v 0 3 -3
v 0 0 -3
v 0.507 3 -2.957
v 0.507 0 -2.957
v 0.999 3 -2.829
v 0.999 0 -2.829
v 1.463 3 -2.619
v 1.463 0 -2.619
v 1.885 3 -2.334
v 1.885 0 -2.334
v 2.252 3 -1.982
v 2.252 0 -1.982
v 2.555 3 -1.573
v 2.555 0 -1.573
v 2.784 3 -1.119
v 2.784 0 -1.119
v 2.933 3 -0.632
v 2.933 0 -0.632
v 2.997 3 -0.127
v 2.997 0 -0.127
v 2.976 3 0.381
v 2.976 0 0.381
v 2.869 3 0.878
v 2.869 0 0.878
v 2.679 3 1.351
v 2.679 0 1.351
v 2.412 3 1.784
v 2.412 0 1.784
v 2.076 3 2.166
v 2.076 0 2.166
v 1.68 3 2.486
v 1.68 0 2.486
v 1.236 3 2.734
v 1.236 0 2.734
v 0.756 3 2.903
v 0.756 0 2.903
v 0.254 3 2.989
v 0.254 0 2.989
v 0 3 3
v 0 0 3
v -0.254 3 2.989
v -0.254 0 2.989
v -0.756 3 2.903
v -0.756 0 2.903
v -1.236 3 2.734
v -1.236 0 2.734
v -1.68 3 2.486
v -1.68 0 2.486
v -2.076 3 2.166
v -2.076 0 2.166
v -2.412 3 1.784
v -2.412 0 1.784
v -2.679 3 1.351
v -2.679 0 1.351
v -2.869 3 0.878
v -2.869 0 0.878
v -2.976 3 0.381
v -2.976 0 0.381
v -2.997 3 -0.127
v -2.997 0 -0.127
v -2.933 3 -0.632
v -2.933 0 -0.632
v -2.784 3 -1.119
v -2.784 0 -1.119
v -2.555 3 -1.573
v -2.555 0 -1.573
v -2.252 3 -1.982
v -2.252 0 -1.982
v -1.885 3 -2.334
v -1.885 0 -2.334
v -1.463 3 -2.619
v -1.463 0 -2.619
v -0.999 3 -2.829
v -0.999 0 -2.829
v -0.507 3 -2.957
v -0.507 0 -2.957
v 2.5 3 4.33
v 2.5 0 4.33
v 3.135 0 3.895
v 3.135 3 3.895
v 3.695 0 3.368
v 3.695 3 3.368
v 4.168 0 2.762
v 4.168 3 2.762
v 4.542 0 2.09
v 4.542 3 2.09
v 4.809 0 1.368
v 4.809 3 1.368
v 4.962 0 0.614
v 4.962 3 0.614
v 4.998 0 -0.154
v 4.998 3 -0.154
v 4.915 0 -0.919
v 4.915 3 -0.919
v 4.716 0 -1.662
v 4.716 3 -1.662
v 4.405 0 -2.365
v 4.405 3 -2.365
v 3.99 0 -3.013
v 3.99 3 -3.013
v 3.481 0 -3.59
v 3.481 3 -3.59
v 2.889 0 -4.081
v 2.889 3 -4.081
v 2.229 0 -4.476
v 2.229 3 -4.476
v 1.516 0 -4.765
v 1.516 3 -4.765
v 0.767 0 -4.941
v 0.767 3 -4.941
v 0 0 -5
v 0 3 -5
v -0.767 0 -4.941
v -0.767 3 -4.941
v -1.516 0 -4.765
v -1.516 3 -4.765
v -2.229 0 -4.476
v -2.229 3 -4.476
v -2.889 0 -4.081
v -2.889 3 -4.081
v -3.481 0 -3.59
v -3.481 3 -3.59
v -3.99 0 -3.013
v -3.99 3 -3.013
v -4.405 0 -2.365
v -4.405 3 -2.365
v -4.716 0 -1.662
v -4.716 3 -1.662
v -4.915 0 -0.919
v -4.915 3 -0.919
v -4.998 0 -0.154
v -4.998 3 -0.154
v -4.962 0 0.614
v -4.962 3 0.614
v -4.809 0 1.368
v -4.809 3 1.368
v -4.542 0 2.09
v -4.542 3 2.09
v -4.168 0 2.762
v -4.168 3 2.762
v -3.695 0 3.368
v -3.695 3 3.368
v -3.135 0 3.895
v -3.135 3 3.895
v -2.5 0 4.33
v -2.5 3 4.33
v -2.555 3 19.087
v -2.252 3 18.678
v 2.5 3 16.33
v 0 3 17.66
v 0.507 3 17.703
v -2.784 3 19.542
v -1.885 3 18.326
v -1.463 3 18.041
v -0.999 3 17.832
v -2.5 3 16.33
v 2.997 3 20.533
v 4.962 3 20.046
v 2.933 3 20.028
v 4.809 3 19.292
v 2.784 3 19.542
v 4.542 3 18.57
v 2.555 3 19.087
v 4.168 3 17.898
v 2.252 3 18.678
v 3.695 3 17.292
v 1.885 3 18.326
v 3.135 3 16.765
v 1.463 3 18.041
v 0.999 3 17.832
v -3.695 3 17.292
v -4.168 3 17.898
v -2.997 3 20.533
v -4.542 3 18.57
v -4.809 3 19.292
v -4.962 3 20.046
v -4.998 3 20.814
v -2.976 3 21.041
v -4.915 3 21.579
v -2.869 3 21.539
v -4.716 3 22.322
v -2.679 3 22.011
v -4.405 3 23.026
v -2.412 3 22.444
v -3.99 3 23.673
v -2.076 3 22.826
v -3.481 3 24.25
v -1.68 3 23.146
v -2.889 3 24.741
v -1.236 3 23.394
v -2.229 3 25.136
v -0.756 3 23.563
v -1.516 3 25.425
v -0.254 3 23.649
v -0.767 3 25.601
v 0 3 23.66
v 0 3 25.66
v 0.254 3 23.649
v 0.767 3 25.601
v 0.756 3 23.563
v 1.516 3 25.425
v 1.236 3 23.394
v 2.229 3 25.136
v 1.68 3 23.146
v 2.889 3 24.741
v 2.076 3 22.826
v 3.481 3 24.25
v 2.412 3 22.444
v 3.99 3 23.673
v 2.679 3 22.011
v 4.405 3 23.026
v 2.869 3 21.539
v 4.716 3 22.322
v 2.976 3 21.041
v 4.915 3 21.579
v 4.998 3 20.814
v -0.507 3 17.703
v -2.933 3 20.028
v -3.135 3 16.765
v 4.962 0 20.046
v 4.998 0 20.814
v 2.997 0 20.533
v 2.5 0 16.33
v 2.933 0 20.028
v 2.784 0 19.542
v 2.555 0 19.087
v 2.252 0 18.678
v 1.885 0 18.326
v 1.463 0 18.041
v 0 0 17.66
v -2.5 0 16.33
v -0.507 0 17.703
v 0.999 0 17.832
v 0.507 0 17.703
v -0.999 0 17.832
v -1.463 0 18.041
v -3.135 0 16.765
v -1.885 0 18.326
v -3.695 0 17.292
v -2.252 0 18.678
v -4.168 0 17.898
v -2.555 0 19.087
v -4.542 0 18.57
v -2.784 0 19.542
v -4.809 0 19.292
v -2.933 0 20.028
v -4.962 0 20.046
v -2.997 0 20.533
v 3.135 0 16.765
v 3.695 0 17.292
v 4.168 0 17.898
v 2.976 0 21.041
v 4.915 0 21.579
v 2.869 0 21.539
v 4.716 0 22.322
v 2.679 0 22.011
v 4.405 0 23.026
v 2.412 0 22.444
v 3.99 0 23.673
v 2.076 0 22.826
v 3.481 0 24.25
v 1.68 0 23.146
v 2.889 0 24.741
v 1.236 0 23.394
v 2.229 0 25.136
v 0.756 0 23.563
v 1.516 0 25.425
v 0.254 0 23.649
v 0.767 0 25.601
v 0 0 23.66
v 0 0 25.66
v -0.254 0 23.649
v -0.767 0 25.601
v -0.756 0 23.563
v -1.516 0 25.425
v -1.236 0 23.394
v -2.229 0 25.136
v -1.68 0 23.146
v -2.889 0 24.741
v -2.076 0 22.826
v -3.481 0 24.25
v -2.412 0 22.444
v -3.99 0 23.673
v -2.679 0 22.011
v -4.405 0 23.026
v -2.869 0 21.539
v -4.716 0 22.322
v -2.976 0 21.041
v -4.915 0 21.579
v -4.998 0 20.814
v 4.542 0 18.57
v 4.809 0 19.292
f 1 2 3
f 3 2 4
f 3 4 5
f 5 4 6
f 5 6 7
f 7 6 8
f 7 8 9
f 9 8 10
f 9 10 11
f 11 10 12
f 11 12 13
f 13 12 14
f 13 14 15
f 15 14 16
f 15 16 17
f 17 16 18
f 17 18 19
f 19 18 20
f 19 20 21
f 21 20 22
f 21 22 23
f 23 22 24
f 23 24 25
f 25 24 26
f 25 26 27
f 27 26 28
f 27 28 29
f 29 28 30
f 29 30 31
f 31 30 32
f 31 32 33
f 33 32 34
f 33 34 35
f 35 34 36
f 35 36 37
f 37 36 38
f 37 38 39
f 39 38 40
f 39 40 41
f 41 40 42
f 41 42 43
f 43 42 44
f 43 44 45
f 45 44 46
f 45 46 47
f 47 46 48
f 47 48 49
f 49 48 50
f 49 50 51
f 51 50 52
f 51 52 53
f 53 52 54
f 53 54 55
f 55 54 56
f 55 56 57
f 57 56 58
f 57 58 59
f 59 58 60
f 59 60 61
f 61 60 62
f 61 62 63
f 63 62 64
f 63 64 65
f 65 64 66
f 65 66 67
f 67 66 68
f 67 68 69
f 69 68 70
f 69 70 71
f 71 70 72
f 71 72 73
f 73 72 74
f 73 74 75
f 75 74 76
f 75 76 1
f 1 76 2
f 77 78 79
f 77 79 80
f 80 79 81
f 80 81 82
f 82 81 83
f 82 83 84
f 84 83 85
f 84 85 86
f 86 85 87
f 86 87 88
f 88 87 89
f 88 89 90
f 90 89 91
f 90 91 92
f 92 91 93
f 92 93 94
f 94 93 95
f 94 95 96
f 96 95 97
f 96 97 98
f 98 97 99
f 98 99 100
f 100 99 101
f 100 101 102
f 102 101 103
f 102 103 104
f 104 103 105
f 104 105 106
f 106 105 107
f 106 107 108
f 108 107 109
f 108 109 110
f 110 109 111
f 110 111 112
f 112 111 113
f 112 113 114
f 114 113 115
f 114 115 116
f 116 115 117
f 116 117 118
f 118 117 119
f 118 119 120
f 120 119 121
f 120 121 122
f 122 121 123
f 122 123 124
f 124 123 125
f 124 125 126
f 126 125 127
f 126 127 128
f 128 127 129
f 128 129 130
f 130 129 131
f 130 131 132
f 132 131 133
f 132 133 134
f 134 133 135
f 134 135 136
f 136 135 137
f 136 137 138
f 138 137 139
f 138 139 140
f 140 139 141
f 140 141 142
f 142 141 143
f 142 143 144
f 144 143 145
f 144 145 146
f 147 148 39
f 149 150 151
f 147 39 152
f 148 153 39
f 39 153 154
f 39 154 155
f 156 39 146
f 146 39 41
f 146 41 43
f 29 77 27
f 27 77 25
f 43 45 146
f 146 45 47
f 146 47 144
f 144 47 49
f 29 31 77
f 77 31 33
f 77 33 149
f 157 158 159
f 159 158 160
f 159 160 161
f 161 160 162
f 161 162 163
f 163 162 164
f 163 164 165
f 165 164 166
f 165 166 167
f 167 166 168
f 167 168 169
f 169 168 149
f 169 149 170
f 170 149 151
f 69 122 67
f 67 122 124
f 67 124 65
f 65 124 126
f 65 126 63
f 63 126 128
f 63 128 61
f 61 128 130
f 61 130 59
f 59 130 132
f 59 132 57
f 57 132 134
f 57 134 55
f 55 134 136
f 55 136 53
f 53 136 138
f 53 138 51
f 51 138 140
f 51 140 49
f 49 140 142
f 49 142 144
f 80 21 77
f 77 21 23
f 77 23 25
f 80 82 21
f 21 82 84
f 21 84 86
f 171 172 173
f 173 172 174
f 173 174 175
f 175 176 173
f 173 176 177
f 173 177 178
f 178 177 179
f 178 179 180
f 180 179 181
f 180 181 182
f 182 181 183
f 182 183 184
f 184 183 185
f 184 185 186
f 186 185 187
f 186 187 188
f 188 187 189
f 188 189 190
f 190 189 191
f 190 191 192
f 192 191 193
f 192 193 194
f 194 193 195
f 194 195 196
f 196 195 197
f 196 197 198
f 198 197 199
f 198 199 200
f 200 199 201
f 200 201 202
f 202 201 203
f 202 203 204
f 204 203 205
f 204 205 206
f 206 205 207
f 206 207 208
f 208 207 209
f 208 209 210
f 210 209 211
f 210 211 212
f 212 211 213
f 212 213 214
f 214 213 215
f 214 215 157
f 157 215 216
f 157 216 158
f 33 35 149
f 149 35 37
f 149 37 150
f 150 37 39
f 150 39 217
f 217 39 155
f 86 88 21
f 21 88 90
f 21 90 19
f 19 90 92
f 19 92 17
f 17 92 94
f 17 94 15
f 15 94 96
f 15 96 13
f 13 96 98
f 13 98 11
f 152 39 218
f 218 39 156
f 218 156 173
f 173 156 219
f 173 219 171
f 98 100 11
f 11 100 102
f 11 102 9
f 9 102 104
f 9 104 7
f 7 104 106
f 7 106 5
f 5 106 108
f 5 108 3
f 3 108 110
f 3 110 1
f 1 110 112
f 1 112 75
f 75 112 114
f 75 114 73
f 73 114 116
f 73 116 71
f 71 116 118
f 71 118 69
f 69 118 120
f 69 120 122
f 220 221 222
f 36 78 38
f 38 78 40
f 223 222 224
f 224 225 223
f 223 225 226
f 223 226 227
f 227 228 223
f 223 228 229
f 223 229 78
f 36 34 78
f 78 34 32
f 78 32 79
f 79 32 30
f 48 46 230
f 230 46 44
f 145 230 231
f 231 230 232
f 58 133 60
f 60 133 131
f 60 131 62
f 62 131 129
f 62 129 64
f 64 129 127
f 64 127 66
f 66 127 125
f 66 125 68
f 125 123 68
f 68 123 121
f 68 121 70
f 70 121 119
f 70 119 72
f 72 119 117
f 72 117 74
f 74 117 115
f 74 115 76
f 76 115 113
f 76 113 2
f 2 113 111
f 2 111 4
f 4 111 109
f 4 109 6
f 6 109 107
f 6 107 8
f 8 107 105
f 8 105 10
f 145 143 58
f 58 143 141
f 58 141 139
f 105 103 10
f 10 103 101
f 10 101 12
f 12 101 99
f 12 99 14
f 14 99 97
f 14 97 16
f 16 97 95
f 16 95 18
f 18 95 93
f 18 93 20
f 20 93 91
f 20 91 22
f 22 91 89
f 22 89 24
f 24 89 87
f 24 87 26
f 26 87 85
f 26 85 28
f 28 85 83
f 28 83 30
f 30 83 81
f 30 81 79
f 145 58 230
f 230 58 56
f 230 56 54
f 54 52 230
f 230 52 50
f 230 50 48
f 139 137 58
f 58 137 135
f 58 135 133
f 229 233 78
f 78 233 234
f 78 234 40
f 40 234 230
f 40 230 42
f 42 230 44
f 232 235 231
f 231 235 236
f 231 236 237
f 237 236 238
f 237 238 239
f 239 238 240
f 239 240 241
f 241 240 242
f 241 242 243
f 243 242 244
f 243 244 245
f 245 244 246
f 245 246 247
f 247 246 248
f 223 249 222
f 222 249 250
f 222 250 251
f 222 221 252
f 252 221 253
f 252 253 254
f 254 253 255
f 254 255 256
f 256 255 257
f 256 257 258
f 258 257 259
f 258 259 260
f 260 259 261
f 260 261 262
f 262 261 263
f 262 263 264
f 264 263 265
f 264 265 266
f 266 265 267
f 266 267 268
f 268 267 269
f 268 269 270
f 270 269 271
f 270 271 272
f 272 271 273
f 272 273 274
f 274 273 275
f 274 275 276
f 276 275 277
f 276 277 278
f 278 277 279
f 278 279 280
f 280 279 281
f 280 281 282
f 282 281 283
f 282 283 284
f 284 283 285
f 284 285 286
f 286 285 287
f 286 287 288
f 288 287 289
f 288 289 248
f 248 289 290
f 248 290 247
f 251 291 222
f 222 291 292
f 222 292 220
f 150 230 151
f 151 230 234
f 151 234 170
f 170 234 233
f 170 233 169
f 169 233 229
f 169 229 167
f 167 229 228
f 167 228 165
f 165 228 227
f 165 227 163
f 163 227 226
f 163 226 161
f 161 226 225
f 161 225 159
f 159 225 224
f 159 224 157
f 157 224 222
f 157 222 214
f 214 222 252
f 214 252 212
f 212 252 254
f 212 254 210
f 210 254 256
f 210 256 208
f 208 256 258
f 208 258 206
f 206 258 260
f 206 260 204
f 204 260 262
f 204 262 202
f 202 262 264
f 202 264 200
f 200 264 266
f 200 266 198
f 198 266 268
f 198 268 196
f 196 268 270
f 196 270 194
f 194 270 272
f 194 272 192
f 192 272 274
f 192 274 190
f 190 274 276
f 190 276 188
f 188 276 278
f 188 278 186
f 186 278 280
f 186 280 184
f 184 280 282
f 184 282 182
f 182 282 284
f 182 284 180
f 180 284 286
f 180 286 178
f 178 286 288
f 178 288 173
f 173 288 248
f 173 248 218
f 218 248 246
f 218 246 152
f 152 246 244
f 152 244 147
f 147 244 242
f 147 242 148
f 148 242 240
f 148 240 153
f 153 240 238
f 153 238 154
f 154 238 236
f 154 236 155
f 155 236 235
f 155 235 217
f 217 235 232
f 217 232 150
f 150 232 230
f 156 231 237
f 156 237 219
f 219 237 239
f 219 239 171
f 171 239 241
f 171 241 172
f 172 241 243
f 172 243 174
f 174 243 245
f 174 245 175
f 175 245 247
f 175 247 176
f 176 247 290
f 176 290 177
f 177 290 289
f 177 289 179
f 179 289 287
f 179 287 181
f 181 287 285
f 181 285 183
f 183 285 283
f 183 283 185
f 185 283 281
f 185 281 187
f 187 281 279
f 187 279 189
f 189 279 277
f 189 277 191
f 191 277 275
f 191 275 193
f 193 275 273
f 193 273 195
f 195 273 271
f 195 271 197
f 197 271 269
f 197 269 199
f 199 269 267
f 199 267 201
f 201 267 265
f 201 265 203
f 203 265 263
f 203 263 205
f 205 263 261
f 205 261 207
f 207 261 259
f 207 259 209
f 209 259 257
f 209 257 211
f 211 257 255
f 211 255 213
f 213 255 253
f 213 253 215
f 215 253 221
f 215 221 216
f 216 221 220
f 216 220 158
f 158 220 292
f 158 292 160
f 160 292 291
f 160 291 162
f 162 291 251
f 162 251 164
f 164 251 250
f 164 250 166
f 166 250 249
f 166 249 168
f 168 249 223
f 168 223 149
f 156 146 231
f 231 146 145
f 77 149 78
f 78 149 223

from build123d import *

# Parameters (mm, degrees)
SKETCH_2_R      = 5
SKETCH_2_R_2    = 3
SKETCH_2_W      = 5
SKETCH_2_H      = 12
EXTRUDE_1_DEPTH = 3


with BuildPart() as part:
    # 草图2 → 凸台-拉伸1 (new body)
    # profile 1 of 3: a face of its own
    with BuildSketch(Plane(origin=(0, 0, 0), x_dir=(1, 0, 0), z_dir=(0, 1, 0))):
        Circle(SKETCH_2_R)
        with Locations(Location((0, 0, 0), (0, 0, 270))):
            Circle(SKETCH_2_R_2, mode=Mode.SUBTRACT)
    # profile 2 of 3: a face of its own
    with BuildSketch(Plane(origin=(0, 0, 0), x_dir=(1, 0, 0), z_dir=(0, 1, 0))):
        with Locations((0, -20.660254038)):
            Circle(SKETCH_2_R)
        with Locations(Location((0, -20.660254038, 0), (0, 0, 270))):
            Circle(SKETCH_2_R_2, mode=Mode.SUBTRACT)
    # profile 3 of 3: a face of its own
    with BuildSketch(Plane(origin=(0, 0, 0), x_dir=(1, 0, 0), z_dir=(0, 1, 0))):
        with Locations((0, -10.330127019)):
            Rectangle(SKETCH_2_W, SKETCH_2_H)
    extrude(amount=EXTRUDE_1_DEPTH)


solid = part.part
